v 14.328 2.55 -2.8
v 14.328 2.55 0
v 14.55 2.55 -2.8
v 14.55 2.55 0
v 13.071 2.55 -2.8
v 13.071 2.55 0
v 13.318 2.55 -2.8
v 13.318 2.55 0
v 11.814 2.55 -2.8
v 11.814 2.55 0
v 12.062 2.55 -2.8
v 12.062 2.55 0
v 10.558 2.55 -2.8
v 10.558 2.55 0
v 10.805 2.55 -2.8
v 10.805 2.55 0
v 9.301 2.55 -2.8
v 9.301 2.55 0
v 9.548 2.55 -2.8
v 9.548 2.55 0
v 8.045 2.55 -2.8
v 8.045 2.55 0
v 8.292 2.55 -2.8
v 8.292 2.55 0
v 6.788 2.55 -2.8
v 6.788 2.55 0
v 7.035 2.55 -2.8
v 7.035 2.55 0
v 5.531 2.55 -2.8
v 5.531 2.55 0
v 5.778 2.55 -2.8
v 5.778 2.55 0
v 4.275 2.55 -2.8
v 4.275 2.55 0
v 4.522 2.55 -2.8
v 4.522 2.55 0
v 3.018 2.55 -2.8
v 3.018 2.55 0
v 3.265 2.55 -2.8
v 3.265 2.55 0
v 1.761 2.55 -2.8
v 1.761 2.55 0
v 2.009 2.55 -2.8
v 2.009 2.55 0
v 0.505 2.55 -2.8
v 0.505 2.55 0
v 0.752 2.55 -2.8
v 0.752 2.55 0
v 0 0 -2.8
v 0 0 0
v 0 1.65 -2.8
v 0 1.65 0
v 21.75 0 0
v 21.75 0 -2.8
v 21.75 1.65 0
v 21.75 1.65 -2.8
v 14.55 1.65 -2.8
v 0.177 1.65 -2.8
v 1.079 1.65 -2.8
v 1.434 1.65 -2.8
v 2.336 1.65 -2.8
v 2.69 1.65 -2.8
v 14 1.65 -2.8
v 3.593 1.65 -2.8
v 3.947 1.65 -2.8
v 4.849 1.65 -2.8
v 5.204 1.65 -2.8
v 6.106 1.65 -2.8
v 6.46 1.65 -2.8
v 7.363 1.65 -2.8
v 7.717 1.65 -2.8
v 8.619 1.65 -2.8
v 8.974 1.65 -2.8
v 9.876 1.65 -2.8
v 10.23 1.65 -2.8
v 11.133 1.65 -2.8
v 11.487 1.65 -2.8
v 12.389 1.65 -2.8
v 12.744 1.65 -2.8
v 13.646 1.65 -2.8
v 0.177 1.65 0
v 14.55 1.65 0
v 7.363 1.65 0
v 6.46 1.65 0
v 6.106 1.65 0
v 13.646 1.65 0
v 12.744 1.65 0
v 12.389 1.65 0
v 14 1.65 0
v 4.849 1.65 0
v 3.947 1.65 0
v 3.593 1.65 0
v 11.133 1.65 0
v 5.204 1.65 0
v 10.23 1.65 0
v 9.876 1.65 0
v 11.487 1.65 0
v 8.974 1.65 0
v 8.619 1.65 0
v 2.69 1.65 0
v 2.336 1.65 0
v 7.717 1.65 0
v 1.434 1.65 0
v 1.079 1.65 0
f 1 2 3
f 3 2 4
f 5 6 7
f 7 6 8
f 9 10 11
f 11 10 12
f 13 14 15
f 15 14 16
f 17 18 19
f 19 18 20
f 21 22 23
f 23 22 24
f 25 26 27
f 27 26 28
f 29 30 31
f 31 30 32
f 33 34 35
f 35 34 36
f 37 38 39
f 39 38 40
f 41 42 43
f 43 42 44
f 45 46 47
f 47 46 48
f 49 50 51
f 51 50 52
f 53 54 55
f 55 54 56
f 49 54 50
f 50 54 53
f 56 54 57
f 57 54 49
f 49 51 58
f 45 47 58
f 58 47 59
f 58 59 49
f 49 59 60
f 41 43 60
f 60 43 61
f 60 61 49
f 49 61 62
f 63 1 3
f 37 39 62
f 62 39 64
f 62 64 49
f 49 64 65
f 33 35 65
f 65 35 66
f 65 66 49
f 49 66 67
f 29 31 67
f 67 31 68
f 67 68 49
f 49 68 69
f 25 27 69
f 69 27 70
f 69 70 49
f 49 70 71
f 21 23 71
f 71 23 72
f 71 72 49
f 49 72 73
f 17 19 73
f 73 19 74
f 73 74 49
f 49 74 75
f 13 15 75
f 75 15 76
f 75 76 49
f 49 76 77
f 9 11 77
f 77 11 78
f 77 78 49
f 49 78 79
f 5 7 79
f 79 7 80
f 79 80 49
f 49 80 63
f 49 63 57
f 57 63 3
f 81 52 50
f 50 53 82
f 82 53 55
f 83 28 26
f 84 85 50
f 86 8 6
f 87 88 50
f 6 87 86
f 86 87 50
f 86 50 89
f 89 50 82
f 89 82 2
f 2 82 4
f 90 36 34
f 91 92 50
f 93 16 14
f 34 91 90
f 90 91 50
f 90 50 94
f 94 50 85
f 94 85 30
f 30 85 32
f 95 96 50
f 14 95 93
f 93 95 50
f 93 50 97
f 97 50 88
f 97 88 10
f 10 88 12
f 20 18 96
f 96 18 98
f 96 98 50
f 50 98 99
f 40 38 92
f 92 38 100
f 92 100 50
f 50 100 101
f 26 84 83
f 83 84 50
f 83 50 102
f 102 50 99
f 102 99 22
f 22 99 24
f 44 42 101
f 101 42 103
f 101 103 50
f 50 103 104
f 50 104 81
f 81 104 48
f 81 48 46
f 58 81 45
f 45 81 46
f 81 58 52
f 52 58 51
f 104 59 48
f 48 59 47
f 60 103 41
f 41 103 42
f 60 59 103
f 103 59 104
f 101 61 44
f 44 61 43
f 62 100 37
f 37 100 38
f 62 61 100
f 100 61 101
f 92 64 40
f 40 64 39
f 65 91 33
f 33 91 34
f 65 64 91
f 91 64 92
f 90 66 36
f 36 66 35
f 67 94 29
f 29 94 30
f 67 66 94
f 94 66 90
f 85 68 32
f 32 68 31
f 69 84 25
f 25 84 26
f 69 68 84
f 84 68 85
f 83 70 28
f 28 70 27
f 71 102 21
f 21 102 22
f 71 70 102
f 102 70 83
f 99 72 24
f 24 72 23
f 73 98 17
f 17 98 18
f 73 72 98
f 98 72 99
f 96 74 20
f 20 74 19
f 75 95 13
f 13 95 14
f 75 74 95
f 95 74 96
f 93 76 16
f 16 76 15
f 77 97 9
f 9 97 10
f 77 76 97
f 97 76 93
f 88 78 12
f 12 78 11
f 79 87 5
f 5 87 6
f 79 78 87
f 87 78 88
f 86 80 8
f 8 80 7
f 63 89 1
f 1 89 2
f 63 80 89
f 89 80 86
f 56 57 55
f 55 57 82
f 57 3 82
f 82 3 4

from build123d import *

# Parameters (mm, degrees)
BLANKSKE_W         = 21.75
BLANKSKE_H         = 2.55
BLANK_DEPTH        = 2.8
TOOTHCUTSIM_DEPTH  = 23.077250735
TEETHCUTS_COUNT    = 18
TEETHCUTS_PITCH    = 1.25663706
SKETCH1_W          = 7.2
SKETCH1_H          = 0.9
CUT_EXTRUDE1_DEPTH = 23.077250735


with BuildPart() as part:
    # BlankSke → Blank (new body)
    with BuildSketch(Plane.XY):
        with Locations((10.875, 1.275)):
            Rectangle(BLANKSKE_W, BLANKSKE_H)
    extrude(amount=-BLANK_DEPTH)

    # TooCutSkeSim → ToothCutSim (cut, through all)
    with BuildSketch(Plane.XY):
        Polygon((0.177174148, 1.65), (-0.177174148, 1.65), (-0.513992203, 2.5754), (0.513992203, 2.5754), align=None)
    toothcutsim = extrude(amount=-TOOTHCUTSIM_DEPTH, mode=Mode.SUBTRACT)

    # TeethCuts: ToothCutSim ×18
    with Locations(*[(i * TEETHCUTS_PITCH, 0, 0) for i in range(1, TEETHCUTS_COUNT)]):
        add(toothcutsim, mode=Mode.SUBTRACT)

    # Sketch1 → Cut-Extrude1 (cut, through all)
    with BuildSketch(Plane.XY):
        with Locations((18.15, 2.1)):
            Rectangle(SKETCH1_W, SKETCH1_H)
    extrude(amount=-CUT_EXTRUDE1_DEPTH, mode=Mode.SUBTRACT)


solid = part.part
